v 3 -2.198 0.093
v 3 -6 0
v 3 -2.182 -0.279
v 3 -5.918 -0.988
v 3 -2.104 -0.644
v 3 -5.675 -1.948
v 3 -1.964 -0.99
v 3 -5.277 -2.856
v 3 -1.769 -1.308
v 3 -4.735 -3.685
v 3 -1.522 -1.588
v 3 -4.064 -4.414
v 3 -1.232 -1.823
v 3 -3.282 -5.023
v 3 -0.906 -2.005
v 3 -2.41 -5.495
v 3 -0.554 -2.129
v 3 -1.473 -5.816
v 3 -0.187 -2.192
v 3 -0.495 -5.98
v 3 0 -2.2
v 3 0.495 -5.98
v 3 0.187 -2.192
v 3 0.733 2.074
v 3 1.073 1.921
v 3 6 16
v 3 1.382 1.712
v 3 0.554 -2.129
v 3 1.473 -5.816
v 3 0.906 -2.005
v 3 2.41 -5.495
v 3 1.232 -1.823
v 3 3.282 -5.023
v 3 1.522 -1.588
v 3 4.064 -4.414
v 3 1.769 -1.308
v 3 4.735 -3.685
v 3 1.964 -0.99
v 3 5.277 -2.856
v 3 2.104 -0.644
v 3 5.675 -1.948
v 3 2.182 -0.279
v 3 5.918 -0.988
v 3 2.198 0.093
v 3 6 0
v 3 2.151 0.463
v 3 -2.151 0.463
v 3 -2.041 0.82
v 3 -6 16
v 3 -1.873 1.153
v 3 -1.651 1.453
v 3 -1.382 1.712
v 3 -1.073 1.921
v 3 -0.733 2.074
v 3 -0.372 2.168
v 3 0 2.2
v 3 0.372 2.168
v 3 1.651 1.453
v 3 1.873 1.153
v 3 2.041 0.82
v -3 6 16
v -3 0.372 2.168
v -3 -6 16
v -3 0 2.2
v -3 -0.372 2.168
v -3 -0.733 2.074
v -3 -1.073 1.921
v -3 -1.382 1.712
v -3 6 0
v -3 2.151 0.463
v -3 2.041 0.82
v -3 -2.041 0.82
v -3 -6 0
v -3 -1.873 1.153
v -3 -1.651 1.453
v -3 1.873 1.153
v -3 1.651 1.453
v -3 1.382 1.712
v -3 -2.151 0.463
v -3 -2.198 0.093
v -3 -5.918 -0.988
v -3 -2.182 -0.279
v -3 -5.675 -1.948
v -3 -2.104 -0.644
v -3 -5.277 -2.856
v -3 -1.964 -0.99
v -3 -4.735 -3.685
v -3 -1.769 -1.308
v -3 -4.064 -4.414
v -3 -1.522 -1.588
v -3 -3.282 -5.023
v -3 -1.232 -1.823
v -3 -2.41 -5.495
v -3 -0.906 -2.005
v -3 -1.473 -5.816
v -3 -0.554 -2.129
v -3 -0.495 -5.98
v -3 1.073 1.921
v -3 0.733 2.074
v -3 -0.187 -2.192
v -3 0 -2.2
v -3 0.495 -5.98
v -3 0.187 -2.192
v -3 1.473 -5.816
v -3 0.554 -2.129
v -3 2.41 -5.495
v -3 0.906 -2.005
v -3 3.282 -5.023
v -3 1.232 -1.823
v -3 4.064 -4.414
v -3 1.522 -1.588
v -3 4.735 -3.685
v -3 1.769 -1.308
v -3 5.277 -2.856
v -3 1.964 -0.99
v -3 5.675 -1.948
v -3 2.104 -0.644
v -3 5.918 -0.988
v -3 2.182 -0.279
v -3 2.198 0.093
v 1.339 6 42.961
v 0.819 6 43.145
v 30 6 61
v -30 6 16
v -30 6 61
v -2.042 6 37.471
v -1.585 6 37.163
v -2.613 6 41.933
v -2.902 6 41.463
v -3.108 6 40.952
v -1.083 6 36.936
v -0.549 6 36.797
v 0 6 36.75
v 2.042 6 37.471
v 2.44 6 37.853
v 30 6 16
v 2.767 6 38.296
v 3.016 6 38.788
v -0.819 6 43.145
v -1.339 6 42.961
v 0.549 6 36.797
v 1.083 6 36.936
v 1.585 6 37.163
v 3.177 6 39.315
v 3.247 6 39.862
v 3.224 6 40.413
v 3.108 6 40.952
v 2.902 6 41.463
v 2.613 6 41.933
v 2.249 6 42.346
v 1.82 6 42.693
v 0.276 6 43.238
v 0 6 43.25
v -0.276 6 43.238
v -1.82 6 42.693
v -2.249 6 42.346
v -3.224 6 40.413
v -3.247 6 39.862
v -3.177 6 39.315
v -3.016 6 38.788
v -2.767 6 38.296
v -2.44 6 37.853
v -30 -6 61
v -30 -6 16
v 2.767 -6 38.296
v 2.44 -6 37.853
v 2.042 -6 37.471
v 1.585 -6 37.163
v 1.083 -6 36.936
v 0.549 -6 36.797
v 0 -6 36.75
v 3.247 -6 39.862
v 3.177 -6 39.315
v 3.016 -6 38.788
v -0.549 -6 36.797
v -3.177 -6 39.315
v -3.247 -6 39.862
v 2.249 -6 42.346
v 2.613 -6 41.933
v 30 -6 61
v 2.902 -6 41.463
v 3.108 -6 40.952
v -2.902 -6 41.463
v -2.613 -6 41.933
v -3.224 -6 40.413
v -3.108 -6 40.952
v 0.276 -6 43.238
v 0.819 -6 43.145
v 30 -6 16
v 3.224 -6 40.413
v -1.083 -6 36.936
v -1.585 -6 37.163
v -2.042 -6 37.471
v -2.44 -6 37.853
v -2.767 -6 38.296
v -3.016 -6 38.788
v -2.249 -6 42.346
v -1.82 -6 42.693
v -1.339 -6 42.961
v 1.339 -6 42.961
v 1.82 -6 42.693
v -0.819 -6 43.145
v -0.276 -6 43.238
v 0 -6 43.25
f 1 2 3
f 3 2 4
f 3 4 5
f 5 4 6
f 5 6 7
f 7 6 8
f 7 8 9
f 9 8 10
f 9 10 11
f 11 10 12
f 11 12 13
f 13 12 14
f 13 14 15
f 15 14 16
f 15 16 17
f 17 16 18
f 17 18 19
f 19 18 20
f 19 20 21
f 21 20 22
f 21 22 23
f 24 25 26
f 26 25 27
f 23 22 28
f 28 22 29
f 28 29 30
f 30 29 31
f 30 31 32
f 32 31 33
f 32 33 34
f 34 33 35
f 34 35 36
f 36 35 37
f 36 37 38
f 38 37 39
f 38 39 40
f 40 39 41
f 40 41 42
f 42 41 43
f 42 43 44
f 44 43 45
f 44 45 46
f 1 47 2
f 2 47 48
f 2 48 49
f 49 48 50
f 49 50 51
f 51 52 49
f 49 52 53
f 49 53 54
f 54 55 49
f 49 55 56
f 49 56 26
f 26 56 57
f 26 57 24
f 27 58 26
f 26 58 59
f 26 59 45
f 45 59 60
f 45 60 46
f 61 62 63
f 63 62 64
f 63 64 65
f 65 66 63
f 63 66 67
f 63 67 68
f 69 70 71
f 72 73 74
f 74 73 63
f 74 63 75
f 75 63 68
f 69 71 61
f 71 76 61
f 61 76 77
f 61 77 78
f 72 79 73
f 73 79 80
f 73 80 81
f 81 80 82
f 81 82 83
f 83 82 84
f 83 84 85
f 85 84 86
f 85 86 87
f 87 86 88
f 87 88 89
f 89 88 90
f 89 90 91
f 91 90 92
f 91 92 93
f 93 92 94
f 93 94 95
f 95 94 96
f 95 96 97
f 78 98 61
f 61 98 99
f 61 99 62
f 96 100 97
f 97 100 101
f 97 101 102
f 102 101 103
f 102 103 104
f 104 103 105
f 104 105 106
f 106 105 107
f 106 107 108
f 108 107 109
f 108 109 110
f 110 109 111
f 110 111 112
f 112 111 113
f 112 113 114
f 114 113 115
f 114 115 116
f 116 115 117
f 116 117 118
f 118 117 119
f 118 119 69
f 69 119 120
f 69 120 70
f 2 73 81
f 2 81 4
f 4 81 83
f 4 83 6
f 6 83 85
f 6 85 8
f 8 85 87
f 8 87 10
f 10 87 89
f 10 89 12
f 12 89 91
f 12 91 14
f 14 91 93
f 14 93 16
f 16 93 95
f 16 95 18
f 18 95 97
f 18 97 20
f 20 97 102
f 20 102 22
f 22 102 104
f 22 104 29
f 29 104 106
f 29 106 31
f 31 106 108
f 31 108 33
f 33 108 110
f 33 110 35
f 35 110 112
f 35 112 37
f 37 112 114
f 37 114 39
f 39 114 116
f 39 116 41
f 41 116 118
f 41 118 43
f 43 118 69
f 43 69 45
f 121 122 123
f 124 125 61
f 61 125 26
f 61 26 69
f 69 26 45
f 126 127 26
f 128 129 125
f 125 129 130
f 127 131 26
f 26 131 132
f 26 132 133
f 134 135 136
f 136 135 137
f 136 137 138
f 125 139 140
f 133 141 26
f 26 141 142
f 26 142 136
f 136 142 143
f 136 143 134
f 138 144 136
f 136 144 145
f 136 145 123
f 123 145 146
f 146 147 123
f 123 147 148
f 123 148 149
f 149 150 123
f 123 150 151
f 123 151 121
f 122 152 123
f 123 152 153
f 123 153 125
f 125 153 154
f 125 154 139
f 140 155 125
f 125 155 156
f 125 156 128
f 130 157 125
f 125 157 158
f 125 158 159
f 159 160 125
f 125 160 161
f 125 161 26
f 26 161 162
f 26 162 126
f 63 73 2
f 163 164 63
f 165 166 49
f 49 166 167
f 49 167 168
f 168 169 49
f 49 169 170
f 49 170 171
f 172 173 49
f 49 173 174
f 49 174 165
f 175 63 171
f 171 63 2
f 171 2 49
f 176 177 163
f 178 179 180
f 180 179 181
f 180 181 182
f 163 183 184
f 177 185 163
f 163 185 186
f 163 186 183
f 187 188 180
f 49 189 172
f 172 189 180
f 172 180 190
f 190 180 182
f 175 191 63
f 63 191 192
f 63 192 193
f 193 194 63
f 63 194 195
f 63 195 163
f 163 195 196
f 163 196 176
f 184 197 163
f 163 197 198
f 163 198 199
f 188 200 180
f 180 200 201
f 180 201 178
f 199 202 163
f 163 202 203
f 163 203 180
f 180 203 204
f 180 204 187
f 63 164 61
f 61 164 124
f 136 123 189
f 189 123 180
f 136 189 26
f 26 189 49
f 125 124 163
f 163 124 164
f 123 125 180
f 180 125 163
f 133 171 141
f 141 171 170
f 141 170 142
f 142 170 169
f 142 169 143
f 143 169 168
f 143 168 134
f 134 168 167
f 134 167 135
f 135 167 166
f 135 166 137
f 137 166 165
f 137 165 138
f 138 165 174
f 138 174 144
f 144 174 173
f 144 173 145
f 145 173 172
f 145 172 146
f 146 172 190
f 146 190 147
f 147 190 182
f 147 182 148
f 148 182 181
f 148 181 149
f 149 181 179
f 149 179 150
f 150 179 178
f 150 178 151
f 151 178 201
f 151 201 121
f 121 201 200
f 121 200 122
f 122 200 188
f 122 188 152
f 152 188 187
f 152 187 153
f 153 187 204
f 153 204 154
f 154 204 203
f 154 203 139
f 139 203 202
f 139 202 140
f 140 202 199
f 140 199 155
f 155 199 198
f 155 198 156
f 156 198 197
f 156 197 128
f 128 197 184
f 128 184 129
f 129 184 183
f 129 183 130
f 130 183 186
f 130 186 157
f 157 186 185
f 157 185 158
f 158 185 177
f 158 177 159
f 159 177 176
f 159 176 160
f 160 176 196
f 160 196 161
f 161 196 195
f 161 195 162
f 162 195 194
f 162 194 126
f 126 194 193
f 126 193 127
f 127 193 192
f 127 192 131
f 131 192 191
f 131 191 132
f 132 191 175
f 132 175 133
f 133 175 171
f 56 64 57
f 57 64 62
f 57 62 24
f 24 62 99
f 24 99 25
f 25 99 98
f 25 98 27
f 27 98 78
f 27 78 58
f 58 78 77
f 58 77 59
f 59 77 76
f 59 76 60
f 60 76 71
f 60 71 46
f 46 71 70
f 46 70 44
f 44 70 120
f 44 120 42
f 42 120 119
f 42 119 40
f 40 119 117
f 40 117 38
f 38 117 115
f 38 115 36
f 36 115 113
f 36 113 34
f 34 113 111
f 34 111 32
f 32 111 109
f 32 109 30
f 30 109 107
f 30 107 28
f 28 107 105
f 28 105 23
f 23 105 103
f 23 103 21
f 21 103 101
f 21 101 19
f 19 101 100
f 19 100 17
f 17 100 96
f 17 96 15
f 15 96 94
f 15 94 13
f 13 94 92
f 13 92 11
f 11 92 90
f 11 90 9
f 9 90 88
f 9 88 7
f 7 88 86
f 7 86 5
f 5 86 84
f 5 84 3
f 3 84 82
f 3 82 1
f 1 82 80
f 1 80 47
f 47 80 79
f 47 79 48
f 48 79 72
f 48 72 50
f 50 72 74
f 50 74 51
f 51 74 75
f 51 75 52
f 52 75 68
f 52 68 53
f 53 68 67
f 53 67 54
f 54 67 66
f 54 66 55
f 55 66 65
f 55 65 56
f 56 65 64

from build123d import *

# Parameters (mm, degrees)
CROQUIS_LENGUETA_BUJE_R        = 6
LENGUETA_BUJE_DEPTH            = 3
CROQUIS_LENGUETA_W             = 18
CROQUIS_LENGUETA_H             = 12
LENGUETA_DEPTH                 = 3
CROQUIS_CEJA_W                 = 60
CROQUIS_CEJA_H                 = 45
CEJA_MONITOR_DEPTH             = 12
AGUJERO_TRIPODE_1_4_DEPTH      = 69.242215673
AGUJERO_TRIPODE_1_4_DEPTH_BACK = 69.242215673
CROQUIS_ROSCA_R                = 3.25
EJE_M4_DEPTH                   = 69.242215673
EJE_M4_DEPTH_BACK              = 69.242215673
CROQUIS_EJE_R                  = 2.2


with BuildPart() as part:
    # Croquis_lengueta_buje → Lengueta_buje (new, symmetric)
    with BuildSketch(Plane(origin=(0, 0, 0), x_dir=(0, 0, -1), z_dir=(1, 0, 0))):
        Circle(CROQUIS_LENGUETA_BUJE_R)
    extrude(amount=LENGUETA_BUJE_DEPTH, both=True)

    # Croquis_lengueta → Lengueta (add, symmetric)
    with BuildSketch(Plane(origin=(0, 0, 0), x_dir=(0, 0, -1), z_dir=(1, 0, 0))):
        with Locations((-9, 0)):
            Rectangle(CROQUIS_LENGUETA_W, CROQUIS_LENGUETA_H)
    extrude(amount=LENGUETA_DEPTH, both=True)

    # Croquis_ceja → Ceja_monitor (add)
    with BuildSketch(Plane(origin=(0, -6, 0), x_dir=(1, 0, 0), z_dir=(0, 1, 0))):
        with Locations((0, -38.5)):
            Rectangle(CROQUIS_CEJA_W, CROQUIS_CEJA_H)
    extrude(amount=CEJA_MONITOR_DEPTH)

    # Croquis_rosca → Agujero_tripode_1_4 (cut, two sides: drawn at the far end of the back side and taken through both)
    with BuildSketch(Plane(origin=(0, 0, 0), x_dir=(1, 0, 0), z_dir=(0, 1, 0)).offset(-AGUJERO_TRIPODE_1_4_DEPTH_BACK)):
        with Locations(Location((0, -40, 0), (0, 0, 270))):
            Circle(CROQUIS_ROSCA_R)
    extrude(amount=AGUJERO_TRIPODE_1_4_DEPTH + AGUJERO_TRIPODE_1_4_DEPTH_BACK, mode=Mode.SUBTRACT)

    # Croquis_eje → Eje_M4 (cut, two sides: drawn at the far end of the back side and taken through both)
    with BuildSketch(Plane(origin=(0, 0, 0), x_dir=(0, 0, -1), z_dir=(1, 0, 0)).offset(-EJE_M4_DEPTH_BACK)):
        Circle(CROQUIS_EJE_R)
    extrude(amount=EJE_M4_DEPTH + EJE_M4_DEPTH_BACK, mode=Mode.SUBTRACT)


solid = part.part
